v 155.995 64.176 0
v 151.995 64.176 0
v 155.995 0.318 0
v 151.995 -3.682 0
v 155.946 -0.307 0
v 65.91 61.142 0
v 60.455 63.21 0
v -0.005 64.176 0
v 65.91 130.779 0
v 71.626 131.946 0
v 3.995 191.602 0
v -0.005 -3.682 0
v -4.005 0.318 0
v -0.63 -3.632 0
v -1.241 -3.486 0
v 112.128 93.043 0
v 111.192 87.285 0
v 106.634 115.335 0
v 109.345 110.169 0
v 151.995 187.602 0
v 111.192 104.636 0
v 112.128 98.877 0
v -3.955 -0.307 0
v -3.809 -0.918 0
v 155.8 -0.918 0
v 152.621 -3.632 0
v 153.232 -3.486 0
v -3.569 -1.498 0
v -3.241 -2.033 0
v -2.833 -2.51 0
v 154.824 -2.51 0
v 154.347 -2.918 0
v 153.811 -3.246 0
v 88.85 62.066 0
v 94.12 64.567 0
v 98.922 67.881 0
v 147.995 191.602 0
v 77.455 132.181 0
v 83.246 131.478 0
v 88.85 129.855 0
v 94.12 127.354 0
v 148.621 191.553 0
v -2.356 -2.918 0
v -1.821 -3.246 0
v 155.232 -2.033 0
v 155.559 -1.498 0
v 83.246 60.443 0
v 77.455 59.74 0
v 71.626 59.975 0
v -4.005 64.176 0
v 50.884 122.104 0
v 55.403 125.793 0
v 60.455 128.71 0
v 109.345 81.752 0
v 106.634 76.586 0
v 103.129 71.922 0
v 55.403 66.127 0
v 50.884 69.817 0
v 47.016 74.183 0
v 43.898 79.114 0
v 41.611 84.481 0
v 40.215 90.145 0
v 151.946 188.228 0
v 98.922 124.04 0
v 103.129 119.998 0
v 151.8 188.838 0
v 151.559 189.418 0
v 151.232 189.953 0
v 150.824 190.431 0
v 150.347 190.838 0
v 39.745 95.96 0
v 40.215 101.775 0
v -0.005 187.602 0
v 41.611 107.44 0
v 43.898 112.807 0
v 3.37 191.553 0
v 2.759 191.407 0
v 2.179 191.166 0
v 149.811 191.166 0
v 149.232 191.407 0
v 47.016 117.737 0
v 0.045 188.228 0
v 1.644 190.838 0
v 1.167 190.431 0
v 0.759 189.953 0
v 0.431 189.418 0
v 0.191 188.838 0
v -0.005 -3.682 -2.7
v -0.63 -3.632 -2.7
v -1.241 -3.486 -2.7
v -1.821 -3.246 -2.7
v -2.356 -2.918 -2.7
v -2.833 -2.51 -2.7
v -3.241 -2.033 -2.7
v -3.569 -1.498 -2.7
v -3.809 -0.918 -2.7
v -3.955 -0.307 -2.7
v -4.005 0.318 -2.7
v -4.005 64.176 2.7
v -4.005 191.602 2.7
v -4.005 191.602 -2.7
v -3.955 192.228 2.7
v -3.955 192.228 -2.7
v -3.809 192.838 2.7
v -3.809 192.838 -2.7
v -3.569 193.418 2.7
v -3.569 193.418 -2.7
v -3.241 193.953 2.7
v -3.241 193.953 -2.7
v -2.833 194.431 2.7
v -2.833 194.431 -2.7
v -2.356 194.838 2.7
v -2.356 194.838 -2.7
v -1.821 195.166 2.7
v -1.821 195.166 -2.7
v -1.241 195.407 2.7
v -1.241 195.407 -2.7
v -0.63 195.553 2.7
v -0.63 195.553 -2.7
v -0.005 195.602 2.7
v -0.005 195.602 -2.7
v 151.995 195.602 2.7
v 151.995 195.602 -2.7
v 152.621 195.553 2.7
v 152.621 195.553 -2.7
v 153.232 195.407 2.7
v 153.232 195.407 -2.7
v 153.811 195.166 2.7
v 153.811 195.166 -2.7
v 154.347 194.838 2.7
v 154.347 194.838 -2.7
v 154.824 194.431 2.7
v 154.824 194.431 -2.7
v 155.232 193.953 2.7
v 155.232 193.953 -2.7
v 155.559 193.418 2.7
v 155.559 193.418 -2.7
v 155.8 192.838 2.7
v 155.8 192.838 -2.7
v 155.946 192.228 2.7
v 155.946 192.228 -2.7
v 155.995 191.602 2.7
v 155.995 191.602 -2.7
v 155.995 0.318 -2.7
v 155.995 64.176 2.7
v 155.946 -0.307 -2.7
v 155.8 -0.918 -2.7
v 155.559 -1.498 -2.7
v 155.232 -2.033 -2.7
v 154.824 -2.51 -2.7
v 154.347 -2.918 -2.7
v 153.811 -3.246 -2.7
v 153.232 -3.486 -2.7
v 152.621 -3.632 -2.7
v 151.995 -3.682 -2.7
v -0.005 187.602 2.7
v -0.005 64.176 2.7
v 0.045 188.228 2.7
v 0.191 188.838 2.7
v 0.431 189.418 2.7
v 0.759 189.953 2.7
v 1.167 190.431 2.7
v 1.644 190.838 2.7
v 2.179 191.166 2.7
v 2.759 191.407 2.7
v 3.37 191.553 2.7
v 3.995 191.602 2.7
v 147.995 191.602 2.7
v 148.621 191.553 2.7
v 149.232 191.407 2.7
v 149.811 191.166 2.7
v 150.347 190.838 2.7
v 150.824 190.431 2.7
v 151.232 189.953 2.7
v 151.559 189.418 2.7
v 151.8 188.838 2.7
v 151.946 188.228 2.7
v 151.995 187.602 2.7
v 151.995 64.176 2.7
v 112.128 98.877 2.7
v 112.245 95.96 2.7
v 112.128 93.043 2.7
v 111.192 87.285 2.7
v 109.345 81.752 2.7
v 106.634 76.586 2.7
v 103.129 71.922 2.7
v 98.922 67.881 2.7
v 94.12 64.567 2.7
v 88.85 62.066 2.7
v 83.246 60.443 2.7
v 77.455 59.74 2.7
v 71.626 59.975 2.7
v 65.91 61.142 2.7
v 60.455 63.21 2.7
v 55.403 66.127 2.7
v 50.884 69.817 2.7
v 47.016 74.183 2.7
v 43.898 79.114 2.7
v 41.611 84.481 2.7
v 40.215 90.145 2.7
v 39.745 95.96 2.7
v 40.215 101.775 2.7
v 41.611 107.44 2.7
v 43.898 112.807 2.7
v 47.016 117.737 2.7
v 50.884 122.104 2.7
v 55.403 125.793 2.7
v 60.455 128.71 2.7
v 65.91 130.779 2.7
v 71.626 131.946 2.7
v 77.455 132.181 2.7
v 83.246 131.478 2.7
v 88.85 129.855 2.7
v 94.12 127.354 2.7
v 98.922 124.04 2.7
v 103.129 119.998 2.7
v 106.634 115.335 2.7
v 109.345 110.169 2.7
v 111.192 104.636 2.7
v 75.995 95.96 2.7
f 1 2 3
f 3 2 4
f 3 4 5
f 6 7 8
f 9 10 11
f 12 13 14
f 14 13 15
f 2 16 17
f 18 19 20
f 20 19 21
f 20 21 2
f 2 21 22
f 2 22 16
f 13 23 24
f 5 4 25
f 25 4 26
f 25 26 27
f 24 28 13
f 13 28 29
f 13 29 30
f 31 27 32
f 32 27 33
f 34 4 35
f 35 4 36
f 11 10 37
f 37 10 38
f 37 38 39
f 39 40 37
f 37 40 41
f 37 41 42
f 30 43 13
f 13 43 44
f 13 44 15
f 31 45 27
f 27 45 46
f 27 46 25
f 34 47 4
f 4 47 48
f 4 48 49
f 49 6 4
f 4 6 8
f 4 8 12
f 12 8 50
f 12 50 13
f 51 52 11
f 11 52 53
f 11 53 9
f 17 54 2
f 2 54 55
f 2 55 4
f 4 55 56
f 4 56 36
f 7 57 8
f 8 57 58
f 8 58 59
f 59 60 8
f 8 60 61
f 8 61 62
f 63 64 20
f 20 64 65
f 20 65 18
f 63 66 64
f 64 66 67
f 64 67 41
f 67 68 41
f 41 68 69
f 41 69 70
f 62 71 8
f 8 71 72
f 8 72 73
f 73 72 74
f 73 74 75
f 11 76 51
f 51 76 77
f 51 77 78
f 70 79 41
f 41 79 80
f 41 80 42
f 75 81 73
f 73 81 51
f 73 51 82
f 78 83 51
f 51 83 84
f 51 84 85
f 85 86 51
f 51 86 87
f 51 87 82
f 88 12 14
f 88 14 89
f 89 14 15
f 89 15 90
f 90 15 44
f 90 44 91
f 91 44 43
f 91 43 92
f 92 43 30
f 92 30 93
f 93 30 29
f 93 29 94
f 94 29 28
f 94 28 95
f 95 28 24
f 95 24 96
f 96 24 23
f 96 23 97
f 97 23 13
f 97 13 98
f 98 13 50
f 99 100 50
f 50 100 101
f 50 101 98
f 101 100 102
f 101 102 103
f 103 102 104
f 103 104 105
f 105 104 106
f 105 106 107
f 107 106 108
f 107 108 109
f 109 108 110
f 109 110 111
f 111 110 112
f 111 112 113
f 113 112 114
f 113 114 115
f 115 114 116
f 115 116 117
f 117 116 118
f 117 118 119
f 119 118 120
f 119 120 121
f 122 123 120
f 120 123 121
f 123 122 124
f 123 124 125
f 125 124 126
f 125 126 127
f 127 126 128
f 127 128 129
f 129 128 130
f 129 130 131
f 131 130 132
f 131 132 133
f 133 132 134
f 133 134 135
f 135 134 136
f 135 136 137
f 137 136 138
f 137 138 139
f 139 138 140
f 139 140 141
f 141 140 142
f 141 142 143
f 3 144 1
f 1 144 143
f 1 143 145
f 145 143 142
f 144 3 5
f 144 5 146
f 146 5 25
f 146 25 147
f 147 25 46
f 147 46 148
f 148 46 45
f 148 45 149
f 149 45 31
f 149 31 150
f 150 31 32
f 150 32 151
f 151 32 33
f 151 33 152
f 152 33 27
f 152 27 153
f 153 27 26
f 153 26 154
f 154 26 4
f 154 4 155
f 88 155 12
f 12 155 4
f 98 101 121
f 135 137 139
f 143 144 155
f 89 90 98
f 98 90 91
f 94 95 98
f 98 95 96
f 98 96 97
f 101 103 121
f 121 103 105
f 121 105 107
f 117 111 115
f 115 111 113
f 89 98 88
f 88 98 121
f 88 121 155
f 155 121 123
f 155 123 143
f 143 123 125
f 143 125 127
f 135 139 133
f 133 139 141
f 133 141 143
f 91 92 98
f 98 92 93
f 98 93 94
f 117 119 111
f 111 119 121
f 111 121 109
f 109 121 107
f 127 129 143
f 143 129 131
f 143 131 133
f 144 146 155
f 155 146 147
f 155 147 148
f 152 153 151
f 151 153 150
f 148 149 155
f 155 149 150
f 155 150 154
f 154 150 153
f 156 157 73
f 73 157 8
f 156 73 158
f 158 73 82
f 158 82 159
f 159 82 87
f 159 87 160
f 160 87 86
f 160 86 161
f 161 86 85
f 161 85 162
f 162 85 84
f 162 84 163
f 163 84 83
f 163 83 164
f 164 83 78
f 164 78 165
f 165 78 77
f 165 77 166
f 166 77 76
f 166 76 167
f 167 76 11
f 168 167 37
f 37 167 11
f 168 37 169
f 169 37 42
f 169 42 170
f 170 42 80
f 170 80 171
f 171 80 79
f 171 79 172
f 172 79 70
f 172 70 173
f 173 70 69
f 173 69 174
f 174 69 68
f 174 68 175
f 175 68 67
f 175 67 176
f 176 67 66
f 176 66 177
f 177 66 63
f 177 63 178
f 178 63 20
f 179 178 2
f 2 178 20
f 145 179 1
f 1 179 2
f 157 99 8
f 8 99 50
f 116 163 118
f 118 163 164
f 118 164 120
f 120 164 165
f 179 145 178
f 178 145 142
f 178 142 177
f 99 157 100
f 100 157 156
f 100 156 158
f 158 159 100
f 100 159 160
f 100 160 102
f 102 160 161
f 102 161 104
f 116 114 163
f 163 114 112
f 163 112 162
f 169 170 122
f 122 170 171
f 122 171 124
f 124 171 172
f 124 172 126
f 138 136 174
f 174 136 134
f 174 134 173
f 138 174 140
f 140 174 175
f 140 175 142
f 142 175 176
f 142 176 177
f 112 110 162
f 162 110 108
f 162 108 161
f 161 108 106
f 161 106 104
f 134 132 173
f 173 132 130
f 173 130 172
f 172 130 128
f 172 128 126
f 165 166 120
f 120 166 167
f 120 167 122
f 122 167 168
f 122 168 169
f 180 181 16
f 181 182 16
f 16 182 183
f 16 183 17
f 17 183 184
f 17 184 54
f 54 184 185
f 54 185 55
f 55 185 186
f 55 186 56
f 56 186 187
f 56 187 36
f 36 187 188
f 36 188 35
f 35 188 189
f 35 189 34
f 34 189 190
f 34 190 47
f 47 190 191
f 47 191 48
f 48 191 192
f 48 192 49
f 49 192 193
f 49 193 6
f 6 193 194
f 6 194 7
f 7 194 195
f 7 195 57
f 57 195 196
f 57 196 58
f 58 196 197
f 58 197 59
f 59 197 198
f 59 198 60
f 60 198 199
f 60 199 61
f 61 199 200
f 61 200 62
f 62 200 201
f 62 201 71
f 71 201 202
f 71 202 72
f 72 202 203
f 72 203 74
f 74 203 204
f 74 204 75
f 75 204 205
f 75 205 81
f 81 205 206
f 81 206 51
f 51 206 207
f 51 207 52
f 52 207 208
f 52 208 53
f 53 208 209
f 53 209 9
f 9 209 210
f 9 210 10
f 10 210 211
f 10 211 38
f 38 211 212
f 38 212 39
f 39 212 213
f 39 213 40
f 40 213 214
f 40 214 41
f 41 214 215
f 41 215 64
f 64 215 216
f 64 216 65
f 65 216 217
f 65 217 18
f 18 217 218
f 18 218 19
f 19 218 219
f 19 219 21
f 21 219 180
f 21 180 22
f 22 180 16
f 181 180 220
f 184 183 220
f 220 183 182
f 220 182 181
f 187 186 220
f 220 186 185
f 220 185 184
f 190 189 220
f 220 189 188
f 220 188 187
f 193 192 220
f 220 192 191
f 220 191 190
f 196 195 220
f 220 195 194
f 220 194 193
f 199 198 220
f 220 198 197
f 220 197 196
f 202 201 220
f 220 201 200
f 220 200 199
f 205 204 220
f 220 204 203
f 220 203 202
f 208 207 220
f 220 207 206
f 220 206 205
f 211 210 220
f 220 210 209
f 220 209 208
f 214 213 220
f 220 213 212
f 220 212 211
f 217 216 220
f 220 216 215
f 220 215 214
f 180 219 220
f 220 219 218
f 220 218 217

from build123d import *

# Parameters (mm, degrees)
BOSS_EXTRUDE1_DEPTH = 2.7
BOSS_EXTRUDE2_START = 2.7
SKETCH1_4_R         = 36.25
BOSS_EXTRUDE2_DEPTH = 2.7


with BuildPart() as part:
    # Sketch1 → Boss-Extrude1 (new body)
    with BuildSketch(Plane.XY):
        with BuildLine():
            Line((-0.00454753, -3.681705965), (151.99545247, -3.681705965))
            ThreePointArc((151.99545247, -3.681705965), (154.823879594, -2.510133089), (155.99545247, 0.318294035))
            Line((155.99545247, 0.318294035), (155.99545247, 191.602313493))
            ThreePointArc((155.99545247, 191.602313493), (154.823879594, 194.430740617), (151.99545247, 195.602313493))
            Line((151.99545247, 195.602313493), (-0.00454753, 195.602313493))
            ThreePointArc((-0.00454753, 195.602313493), (-2.832974655, 194.430740617), (-4.00454753, 191.602313493))
            Line((-4.00454753, 191.602313493), (-4.00454753, 0.318294035))
            ThreePointArc((-4.00454753, 0.318294035), (-2.832974655, -2.510133089), (-0.00454753, -3.681705965))
        make_face()
    extrude(amount=-BOSS_EXTRUDE1_DEPTH)

    # Sketch1<4> → Boss-Extrude2 (add)
    with BuildSketch(Plane.XY.offset(BOSS_EXTRUDE2_START)):
        with BuildLine():
            Line((-4.00454753, 191.602313493), (-4.00454753, 64.175623566))
            Line((-4.00454753, 64.175623566), (-0.00454753, 64.175623566))
            Line((-0.00454753, 64.175623566), (-0.00454753, 187.602313493))
            ThreePointArc((-0.00454753, 187.602313493), (1.167025345, 190.430740617), (3.99545247, 191.602313493))
            Line((3.99545247, 191.602313493), (147.99545247, 191.602313493))
            ThreePointArc((147.99545247, 191.602313493), (150.823879594, 190.430740617), (151.99545247, 187.602313493))
            Line((151.99545247, 187.602313493), (151.99545247, 64.175623566))
            Line((151.99545247, 64.175623566), (155.99545247, 64.175623566))
            Line((155.99545247, 64.175623566), (155.99545247, 191.602313493))
            ThreePointArc((155.99545247, 191.602313493), (154.823879594, 194.430740617), (151.99545247, 195.602313493))
            Line((151.99545247, 195.602313493), (-0.00454753, 195.602313493))
            ThreePointArc((-0.00454753, 195.602313493), (-2.832974655, 194.430740617), (-4.00454753, 191.602313493))
        make_face()
        with Locations((75.99545247, 95.960303764)):
            Circle(SKETCH1_4_R)
    extrude(amount=-BOSS_EXTRUDE2_DEPTH)


solid = part.part
